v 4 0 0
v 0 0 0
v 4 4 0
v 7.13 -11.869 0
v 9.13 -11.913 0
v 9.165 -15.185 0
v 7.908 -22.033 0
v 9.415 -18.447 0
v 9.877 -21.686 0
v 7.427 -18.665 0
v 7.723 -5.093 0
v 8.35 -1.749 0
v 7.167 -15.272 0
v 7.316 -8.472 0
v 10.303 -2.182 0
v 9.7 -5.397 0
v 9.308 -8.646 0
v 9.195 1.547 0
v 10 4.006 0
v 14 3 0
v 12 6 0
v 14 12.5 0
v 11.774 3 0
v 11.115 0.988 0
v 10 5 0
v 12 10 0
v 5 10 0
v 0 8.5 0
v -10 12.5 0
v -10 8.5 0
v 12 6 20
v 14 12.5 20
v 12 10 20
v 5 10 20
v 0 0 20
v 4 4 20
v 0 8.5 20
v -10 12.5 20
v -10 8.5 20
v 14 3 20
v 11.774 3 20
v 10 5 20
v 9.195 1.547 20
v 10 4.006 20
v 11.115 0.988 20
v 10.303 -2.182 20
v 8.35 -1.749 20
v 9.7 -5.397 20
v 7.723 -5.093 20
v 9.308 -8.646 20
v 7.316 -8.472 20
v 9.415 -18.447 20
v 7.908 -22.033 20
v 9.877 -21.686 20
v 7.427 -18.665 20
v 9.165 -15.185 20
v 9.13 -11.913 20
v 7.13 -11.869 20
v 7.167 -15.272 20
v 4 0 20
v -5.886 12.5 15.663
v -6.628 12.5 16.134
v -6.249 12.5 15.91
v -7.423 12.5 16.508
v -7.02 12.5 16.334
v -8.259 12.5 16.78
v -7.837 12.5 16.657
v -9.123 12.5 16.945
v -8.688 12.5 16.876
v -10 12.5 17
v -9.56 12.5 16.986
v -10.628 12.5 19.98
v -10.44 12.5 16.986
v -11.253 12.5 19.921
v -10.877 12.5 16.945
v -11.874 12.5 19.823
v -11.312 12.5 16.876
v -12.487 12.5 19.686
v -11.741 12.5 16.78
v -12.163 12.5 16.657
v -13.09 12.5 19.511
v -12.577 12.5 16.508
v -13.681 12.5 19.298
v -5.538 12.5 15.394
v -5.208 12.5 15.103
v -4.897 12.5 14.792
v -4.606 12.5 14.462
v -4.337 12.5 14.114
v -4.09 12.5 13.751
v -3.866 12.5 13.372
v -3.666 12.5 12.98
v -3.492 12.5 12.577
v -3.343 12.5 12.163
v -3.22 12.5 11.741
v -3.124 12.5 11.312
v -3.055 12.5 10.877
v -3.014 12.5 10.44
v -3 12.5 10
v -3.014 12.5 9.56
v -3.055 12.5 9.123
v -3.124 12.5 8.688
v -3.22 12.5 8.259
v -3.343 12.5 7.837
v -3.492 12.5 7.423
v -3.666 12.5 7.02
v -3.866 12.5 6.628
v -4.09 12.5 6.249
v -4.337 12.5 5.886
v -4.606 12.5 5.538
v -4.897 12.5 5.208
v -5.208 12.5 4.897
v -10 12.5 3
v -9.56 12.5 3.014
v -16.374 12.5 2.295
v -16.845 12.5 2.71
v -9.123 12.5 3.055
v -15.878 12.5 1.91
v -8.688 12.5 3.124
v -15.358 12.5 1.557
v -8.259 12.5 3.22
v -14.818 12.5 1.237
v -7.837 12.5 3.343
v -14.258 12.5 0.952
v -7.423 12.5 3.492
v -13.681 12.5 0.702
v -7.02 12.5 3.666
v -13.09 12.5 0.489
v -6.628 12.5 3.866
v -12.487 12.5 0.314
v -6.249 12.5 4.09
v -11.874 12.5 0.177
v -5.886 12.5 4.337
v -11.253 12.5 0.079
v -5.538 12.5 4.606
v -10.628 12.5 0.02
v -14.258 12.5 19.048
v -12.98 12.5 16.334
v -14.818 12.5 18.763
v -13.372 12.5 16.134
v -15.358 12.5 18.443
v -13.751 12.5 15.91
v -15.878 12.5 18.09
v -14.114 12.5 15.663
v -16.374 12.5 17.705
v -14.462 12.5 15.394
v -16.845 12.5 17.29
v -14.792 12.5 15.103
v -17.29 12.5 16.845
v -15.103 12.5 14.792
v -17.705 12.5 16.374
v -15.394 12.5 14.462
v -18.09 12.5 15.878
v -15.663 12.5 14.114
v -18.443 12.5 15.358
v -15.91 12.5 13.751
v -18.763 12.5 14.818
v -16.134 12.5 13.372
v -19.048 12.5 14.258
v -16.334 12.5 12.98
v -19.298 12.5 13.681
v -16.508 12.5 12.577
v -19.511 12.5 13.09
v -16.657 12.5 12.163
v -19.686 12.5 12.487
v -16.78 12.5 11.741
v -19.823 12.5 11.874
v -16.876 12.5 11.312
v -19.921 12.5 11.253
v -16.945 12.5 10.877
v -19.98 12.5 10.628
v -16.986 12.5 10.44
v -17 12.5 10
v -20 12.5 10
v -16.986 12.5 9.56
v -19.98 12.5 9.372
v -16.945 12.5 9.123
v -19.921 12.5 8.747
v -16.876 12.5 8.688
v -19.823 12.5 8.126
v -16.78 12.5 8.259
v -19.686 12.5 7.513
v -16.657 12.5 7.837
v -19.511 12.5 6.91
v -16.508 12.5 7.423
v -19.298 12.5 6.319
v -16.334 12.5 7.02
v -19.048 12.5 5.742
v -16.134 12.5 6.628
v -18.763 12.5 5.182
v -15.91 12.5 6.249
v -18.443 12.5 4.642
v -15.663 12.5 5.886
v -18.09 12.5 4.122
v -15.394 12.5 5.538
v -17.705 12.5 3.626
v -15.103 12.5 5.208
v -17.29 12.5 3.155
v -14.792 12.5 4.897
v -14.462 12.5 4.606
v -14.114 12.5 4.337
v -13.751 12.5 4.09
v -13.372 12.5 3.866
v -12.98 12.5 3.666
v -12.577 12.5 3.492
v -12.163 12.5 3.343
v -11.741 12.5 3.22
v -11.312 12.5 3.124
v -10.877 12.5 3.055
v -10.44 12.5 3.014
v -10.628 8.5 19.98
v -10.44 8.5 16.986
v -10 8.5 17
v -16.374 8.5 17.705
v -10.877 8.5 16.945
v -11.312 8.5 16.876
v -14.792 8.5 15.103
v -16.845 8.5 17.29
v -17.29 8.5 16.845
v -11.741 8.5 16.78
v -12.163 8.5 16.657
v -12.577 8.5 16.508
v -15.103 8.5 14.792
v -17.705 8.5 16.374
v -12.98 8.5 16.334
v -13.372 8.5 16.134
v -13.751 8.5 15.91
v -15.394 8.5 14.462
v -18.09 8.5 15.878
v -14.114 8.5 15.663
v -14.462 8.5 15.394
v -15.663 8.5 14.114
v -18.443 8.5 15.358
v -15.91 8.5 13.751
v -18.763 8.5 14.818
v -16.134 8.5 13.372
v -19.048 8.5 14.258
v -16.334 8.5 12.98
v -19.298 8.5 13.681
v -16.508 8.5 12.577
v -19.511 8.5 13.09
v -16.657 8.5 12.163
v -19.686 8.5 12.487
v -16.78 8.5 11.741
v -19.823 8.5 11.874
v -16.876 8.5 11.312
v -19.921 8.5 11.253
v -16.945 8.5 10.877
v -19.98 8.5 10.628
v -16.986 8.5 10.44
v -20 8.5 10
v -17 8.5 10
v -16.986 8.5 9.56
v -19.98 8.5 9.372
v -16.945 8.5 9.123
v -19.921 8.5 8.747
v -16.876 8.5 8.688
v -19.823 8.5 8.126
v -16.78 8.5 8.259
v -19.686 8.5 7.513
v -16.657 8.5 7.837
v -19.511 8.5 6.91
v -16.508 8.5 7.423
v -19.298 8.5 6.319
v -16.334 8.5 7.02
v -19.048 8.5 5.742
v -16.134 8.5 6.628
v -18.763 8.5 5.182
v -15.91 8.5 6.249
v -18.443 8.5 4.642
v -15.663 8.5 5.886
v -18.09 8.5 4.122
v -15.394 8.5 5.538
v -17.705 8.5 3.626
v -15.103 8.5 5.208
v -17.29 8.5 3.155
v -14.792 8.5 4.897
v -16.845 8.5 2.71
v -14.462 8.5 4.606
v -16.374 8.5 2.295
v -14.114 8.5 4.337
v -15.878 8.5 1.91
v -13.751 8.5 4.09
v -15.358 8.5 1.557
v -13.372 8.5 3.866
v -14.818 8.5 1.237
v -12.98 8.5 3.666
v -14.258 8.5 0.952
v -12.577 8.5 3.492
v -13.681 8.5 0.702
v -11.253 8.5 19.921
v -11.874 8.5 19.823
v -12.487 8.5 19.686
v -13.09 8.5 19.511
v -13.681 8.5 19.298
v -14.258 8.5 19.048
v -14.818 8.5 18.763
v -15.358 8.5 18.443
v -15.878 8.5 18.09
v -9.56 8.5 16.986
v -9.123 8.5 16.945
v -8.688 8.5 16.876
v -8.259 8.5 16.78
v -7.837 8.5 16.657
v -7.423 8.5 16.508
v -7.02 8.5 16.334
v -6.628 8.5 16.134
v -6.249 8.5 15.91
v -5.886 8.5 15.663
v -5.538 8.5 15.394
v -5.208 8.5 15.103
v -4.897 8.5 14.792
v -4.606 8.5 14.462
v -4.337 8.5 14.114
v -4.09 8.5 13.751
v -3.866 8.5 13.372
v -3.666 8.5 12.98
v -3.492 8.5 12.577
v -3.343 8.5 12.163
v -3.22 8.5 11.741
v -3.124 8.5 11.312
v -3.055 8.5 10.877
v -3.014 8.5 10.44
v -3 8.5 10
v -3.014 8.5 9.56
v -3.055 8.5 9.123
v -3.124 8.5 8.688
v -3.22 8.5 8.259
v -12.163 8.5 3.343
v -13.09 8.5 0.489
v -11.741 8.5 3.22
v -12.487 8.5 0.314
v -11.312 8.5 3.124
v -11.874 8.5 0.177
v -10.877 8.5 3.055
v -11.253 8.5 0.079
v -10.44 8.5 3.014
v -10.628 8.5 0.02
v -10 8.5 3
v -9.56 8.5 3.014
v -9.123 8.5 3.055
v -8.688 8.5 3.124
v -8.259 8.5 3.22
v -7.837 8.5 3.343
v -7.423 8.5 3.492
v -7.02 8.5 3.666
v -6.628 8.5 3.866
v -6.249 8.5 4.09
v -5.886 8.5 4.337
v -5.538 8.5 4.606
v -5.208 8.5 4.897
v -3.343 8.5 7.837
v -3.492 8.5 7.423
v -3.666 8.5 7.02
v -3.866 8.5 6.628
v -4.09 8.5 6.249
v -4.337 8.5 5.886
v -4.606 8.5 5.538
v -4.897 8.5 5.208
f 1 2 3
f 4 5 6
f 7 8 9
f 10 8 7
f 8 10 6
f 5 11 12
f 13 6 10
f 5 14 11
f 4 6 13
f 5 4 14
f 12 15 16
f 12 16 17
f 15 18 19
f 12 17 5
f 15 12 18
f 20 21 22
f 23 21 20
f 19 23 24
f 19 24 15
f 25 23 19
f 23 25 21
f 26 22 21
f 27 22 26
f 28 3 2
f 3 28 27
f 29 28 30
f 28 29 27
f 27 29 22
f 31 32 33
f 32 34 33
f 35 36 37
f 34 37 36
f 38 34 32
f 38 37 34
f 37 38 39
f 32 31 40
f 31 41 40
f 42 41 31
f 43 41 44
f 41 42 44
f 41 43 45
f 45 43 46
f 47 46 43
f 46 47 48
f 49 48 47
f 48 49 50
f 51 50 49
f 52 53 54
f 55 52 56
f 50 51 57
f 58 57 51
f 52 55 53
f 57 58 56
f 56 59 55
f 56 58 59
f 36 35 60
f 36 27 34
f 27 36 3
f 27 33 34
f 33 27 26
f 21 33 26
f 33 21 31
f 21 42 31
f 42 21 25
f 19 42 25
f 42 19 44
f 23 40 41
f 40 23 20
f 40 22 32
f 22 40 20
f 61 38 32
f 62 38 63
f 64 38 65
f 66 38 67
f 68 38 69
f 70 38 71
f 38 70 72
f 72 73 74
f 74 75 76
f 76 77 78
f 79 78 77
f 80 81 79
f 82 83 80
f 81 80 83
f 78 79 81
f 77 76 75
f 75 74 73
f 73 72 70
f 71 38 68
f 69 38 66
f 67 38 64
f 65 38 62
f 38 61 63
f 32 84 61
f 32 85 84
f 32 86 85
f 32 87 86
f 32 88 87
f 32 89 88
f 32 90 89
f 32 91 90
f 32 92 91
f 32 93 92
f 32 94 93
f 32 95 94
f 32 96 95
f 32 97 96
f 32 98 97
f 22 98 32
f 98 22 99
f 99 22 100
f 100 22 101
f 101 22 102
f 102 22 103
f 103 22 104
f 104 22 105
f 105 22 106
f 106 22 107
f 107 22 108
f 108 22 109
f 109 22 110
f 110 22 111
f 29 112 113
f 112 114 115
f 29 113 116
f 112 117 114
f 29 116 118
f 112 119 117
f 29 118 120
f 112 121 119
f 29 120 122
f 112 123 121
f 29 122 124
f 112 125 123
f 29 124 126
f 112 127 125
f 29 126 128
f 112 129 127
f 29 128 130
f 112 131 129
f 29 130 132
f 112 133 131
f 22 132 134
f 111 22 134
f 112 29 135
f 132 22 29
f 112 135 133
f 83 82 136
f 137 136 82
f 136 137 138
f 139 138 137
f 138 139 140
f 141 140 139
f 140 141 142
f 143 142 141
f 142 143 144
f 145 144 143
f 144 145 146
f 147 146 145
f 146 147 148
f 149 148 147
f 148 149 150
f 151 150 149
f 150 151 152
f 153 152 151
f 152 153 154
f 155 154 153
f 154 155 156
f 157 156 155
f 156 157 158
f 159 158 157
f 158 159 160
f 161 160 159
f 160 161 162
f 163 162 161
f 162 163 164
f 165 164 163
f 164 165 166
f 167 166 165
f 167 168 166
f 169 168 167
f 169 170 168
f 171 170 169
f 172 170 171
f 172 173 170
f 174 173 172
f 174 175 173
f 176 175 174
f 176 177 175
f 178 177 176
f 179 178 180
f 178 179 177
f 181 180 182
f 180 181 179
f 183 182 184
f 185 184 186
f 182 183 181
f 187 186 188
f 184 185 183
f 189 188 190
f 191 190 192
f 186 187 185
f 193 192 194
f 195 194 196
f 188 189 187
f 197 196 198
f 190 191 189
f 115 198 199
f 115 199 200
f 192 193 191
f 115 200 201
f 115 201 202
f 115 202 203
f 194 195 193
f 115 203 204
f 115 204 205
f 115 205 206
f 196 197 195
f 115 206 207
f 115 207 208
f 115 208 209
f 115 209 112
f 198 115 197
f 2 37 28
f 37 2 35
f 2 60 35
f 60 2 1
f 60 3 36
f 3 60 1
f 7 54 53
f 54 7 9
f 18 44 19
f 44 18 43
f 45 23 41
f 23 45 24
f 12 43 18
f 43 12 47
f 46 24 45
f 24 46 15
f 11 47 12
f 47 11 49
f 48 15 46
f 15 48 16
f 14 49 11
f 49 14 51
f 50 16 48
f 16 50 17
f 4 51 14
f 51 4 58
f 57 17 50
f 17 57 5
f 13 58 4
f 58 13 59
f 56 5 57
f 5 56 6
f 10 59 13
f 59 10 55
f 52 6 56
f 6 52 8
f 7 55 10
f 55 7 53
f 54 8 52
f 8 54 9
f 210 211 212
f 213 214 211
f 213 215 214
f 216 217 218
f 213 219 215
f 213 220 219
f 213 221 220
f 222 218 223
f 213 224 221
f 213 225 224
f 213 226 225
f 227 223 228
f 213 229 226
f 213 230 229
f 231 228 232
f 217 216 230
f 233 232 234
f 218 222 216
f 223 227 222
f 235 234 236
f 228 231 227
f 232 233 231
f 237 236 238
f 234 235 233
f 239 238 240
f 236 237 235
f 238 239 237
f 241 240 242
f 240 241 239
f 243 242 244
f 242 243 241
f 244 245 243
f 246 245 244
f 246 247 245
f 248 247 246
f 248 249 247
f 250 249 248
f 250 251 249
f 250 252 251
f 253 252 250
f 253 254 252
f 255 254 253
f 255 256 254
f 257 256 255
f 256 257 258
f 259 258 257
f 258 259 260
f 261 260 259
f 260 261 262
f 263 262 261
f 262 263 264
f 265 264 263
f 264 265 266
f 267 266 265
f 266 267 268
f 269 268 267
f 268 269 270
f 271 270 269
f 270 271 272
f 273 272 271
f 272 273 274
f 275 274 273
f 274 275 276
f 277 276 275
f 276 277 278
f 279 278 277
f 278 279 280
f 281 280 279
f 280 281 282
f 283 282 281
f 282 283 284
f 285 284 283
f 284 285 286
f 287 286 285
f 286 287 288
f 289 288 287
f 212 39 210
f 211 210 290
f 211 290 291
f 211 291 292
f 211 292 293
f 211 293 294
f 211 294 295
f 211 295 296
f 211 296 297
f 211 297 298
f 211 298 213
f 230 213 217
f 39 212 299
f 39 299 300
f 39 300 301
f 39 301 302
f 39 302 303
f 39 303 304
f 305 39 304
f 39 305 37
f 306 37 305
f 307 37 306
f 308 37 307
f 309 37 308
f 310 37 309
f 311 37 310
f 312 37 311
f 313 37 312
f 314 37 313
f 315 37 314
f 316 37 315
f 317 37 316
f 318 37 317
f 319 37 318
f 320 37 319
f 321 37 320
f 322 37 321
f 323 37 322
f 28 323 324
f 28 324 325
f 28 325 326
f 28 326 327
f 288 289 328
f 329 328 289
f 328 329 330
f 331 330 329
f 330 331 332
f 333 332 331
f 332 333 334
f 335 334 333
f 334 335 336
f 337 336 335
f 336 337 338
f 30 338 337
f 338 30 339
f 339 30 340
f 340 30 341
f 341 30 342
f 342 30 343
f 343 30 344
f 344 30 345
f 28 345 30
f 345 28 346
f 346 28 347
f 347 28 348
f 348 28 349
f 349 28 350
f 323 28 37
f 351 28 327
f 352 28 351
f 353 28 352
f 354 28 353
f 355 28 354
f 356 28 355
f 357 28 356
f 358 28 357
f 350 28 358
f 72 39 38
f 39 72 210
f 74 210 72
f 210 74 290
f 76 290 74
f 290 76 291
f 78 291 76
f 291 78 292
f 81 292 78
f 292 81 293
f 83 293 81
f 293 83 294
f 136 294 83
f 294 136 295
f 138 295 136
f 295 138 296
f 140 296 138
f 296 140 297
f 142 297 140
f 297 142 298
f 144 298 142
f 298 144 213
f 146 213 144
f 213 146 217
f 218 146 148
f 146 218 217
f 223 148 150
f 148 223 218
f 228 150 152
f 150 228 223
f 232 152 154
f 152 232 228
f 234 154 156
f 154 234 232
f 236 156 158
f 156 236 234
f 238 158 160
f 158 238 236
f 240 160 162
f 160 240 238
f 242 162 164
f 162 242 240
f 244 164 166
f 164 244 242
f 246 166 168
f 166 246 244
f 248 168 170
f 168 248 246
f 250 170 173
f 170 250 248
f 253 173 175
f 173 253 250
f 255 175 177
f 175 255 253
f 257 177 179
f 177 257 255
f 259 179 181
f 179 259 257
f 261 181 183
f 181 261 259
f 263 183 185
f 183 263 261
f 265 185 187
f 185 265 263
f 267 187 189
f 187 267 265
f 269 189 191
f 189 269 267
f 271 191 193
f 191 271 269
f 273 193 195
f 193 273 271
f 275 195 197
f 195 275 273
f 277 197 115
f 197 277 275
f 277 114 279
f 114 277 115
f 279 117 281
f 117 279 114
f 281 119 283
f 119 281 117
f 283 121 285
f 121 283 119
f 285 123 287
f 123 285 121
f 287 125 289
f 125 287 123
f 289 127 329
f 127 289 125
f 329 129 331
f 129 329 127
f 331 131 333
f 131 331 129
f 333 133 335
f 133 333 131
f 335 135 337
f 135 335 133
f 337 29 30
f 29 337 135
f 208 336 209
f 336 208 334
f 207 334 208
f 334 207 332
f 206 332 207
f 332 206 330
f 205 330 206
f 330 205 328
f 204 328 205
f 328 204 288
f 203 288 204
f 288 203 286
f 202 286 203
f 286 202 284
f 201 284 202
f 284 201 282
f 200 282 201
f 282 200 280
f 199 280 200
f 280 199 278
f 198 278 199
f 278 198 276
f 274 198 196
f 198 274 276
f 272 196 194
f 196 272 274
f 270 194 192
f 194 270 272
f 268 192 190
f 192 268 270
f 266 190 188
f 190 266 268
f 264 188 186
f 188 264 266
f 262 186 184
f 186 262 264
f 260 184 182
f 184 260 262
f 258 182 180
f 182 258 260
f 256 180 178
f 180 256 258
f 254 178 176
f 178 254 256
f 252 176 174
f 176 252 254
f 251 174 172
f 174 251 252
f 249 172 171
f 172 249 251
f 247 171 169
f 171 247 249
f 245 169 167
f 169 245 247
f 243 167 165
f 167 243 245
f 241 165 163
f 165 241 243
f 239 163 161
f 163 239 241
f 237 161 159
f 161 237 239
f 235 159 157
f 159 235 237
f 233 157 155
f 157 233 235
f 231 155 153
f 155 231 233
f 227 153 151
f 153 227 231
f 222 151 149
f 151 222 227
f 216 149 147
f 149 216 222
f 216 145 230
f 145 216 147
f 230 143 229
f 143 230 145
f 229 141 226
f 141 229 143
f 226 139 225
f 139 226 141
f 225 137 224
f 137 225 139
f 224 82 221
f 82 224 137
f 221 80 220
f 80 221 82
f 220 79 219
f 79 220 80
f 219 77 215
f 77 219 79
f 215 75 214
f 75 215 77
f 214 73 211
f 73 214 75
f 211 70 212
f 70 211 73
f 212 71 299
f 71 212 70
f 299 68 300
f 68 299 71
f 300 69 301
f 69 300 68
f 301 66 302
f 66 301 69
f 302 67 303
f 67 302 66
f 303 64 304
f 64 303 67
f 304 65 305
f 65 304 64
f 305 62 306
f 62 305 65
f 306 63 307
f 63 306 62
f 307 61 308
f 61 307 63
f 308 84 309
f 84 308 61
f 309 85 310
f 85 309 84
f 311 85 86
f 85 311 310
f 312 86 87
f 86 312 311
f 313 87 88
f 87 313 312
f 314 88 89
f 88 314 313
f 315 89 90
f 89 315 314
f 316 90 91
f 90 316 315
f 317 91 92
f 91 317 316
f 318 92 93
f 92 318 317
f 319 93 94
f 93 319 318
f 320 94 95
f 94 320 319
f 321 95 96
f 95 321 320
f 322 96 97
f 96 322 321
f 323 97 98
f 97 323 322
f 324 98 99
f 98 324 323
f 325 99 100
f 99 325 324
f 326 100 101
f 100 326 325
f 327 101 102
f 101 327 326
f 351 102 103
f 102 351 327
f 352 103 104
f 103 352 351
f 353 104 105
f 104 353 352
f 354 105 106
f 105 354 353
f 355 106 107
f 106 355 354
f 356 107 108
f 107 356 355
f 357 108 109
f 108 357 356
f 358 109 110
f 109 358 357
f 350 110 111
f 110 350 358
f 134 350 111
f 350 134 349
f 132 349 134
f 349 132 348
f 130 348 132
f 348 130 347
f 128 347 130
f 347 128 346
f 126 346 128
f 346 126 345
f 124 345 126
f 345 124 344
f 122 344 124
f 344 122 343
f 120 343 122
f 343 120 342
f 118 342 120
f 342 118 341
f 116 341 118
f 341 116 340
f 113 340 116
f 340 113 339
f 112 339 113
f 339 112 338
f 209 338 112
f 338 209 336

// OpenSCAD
$fn=100;

circle_opening_diameter=14;
circle_with_walls=circle_opening_diameter+(2*3);

clamp_height=12.5;

linear_extrude(height=circle_with_walls)
polygon([[0,0], [0,clamp_height], [14,clamp_height], [14,3], [10,3], [10, 5], [12, 6], [12,10], [5,10], [4,4], [4,0]]);

rotate([0, 0, 160])
translate([-60, -8, 0])
rotate_extrude(angle = 30) translate([50, 0, 0]) square(size = [2, circle_with_walls], center = false);

translate([-(circle_with_walls/2),clamp_height,circle_with_walls/2])
rotate([90,0,0])
linear_extrude(height=4){
  difference(){
    circle(d=circle_with_walls);
    circle(d=circle_opening_diameter);
  }
  difference() {
    translate([0,-(circle_with_walls/2)])
      square([circle_with_walls/2,circle_with_walls]);
    circle(d=circle_opening_diameter);
  }
}
